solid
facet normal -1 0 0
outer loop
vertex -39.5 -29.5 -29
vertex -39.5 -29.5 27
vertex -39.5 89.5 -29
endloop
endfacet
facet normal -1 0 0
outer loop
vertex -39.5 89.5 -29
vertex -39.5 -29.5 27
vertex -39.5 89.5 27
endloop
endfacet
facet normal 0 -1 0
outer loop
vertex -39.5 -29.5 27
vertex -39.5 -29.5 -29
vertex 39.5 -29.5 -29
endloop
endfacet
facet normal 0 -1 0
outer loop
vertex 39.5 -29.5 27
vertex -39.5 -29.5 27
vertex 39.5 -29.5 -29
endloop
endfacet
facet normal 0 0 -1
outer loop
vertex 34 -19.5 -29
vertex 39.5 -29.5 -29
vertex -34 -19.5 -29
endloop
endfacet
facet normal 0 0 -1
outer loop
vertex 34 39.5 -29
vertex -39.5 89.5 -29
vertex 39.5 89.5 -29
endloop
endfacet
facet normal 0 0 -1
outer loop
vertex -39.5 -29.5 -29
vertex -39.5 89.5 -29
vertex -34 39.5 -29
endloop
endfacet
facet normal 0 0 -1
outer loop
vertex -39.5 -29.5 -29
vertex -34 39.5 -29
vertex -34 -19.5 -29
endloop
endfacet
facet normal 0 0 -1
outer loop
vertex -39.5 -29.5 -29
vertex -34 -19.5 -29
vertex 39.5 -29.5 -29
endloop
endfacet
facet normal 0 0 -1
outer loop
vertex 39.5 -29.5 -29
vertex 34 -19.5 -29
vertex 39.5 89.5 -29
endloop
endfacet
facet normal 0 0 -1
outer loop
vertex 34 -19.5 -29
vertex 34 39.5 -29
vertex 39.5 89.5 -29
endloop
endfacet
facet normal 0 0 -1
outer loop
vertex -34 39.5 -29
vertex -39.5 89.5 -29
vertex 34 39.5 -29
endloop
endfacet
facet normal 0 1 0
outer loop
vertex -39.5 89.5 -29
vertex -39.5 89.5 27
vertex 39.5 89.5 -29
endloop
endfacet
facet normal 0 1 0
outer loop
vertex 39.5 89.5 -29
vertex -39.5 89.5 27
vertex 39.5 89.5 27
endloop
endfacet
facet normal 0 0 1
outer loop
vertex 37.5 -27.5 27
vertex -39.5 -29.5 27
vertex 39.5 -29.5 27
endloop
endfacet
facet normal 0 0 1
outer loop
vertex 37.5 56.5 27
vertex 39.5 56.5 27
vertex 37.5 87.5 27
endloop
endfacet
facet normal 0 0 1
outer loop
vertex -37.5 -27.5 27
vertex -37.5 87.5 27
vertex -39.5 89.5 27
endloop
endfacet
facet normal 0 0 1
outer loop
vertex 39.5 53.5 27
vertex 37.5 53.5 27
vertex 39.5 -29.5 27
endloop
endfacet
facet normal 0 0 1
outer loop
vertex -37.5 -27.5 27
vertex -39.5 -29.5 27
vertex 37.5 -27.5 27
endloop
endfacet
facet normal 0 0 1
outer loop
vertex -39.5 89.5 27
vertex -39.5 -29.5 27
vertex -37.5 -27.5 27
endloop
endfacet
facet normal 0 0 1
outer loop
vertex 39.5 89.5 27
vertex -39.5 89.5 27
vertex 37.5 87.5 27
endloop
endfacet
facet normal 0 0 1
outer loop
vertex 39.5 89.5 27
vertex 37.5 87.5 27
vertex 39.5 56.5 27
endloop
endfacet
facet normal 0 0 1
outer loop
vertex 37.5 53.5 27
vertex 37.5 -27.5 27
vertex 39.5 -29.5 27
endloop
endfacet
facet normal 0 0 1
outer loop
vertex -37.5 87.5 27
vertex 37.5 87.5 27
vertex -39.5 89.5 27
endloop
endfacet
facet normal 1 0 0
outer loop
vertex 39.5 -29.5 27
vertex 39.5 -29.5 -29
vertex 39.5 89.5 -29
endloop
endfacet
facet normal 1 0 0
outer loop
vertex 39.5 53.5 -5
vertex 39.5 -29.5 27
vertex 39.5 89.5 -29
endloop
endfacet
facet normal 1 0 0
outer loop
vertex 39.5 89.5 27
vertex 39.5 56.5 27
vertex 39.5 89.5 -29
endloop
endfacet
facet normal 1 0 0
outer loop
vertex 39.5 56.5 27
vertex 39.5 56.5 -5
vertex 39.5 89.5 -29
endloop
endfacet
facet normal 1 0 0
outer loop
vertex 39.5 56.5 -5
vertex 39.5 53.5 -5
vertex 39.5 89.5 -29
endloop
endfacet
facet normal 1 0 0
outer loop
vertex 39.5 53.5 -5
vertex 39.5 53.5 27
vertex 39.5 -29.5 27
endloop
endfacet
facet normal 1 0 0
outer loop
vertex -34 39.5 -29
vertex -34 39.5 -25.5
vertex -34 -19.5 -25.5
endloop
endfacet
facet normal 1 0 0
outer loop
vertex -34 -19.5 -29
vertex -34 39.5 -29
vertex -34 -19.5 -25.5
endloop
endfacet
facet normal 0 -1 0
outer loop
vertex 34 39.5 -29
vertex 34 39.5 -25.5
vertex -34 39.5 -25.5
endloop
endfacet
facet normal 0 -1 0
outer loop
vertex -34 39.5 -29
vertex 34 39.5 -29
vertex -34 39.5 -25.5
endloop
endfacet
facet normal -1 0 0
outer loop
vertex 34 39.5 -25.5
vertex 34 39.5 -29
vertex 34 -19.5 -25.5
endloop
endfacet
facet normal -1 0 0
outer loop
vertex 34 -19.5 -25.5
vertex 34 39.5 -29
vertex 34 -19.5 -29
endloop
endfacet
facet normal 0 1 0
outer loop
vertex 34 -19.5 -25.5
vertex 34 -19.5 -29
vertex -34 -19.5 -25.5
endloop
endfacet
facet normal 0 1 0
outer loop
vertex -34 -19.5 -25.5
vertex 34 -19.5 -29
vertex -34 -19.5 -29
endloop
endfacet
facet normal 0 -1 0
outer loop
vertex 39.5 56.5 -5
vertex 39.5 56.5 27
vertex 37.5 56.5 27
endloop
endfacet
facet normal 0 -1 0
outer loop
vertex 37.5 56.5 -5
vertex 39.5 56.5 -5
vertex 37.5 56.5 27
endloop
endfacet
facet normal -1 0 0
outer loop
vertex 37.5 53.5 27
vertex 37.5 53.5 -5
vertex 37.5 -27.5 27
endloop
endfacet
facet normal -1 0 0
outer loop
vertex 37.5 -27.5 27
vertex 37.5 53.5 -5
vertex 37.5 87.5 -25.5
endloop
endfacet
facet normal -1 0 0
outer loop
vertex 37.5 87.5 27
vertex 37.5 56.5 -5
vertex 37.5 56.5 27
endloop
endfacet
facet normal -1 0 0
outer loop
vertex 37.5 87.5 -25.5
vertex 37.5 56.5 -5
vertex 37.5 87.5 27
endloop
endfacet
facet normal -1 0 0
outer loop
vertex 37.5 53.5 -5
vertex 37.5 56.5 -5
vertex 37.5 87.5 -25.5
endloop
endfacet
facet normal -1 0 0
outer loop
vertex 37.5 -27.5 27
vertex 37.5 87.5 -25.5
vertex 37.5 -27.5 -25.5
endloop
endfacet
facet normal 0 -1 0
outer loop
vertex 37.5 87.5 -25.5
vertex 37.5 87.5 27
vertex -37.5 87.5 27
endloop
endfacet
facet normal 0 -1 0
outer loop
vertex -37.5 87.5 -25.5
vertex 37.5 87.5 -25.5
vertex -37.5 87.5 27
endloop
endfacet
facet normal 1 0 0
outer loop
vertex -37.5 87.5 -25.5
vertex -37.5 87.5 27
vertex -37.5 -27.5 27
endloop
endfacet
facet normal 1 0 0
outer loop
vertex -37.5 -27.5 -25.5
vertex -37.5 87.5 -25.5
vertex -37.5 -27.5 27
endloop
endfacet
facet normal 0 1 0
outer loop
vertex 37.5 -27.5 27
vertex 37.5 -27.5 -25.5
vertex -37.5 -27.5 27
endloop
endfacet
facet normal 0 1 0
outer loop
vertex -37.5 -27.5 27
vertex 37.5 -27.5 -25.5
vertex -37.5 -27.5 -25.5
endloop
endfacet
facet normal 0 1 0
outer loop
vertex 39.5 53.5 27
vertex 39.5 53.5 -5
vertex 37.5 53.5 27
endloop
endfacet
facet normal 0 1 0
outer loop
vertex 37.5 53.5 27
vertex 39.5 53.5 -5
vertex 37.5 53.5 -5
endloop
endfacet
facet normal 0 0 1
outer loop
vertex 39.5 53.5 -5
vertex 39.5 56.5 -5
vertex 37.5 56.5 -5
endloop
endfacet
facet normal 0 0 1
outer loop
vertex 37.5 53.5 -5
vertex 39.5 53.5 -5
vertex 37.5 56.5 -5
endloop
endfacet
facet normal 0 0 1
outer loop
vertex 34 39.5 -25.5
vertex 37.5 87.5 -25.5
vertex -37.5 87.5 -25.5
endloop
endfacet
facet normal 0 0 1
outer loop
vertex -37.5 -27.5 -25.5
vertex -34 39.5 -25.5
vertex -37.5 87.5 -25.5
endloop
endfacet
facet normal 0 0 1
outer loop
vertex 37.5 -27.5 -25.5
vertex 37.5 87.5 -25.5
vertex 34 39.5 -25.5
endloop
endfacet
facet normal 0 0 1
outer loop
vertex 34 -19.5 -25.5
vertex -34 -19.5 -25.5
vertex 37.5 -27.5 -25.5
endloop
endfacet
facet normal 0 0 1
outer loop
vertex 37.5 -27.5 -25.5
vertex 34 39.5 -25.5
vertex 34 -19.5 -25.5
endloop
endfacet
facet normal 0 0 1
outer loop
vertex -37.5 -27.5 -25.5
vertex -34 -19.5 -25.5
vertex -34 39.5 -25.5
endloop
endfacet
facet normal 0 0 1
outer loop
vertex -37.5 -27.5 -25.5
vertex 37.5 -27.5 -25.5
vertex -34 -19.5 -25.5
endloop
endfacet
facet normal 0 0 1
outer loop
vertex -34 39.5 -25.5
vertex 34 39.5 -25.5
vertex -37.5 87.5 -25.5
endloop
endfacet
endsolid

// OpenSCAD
module back_case()
{
   union() {
      difference() {
         translate([0, 30, -1])
            cube([79, 119, 56], center = true);
         translate([0, 30, 2])
            cube([75, 115, 55], center = true);
         translate([0, 10, 10])
            cube([68, 59, 100], center = true);
         translate([30, 55, 15])
            cube([30, 3, 40], center = true);
      }
   }
}

back_case();
